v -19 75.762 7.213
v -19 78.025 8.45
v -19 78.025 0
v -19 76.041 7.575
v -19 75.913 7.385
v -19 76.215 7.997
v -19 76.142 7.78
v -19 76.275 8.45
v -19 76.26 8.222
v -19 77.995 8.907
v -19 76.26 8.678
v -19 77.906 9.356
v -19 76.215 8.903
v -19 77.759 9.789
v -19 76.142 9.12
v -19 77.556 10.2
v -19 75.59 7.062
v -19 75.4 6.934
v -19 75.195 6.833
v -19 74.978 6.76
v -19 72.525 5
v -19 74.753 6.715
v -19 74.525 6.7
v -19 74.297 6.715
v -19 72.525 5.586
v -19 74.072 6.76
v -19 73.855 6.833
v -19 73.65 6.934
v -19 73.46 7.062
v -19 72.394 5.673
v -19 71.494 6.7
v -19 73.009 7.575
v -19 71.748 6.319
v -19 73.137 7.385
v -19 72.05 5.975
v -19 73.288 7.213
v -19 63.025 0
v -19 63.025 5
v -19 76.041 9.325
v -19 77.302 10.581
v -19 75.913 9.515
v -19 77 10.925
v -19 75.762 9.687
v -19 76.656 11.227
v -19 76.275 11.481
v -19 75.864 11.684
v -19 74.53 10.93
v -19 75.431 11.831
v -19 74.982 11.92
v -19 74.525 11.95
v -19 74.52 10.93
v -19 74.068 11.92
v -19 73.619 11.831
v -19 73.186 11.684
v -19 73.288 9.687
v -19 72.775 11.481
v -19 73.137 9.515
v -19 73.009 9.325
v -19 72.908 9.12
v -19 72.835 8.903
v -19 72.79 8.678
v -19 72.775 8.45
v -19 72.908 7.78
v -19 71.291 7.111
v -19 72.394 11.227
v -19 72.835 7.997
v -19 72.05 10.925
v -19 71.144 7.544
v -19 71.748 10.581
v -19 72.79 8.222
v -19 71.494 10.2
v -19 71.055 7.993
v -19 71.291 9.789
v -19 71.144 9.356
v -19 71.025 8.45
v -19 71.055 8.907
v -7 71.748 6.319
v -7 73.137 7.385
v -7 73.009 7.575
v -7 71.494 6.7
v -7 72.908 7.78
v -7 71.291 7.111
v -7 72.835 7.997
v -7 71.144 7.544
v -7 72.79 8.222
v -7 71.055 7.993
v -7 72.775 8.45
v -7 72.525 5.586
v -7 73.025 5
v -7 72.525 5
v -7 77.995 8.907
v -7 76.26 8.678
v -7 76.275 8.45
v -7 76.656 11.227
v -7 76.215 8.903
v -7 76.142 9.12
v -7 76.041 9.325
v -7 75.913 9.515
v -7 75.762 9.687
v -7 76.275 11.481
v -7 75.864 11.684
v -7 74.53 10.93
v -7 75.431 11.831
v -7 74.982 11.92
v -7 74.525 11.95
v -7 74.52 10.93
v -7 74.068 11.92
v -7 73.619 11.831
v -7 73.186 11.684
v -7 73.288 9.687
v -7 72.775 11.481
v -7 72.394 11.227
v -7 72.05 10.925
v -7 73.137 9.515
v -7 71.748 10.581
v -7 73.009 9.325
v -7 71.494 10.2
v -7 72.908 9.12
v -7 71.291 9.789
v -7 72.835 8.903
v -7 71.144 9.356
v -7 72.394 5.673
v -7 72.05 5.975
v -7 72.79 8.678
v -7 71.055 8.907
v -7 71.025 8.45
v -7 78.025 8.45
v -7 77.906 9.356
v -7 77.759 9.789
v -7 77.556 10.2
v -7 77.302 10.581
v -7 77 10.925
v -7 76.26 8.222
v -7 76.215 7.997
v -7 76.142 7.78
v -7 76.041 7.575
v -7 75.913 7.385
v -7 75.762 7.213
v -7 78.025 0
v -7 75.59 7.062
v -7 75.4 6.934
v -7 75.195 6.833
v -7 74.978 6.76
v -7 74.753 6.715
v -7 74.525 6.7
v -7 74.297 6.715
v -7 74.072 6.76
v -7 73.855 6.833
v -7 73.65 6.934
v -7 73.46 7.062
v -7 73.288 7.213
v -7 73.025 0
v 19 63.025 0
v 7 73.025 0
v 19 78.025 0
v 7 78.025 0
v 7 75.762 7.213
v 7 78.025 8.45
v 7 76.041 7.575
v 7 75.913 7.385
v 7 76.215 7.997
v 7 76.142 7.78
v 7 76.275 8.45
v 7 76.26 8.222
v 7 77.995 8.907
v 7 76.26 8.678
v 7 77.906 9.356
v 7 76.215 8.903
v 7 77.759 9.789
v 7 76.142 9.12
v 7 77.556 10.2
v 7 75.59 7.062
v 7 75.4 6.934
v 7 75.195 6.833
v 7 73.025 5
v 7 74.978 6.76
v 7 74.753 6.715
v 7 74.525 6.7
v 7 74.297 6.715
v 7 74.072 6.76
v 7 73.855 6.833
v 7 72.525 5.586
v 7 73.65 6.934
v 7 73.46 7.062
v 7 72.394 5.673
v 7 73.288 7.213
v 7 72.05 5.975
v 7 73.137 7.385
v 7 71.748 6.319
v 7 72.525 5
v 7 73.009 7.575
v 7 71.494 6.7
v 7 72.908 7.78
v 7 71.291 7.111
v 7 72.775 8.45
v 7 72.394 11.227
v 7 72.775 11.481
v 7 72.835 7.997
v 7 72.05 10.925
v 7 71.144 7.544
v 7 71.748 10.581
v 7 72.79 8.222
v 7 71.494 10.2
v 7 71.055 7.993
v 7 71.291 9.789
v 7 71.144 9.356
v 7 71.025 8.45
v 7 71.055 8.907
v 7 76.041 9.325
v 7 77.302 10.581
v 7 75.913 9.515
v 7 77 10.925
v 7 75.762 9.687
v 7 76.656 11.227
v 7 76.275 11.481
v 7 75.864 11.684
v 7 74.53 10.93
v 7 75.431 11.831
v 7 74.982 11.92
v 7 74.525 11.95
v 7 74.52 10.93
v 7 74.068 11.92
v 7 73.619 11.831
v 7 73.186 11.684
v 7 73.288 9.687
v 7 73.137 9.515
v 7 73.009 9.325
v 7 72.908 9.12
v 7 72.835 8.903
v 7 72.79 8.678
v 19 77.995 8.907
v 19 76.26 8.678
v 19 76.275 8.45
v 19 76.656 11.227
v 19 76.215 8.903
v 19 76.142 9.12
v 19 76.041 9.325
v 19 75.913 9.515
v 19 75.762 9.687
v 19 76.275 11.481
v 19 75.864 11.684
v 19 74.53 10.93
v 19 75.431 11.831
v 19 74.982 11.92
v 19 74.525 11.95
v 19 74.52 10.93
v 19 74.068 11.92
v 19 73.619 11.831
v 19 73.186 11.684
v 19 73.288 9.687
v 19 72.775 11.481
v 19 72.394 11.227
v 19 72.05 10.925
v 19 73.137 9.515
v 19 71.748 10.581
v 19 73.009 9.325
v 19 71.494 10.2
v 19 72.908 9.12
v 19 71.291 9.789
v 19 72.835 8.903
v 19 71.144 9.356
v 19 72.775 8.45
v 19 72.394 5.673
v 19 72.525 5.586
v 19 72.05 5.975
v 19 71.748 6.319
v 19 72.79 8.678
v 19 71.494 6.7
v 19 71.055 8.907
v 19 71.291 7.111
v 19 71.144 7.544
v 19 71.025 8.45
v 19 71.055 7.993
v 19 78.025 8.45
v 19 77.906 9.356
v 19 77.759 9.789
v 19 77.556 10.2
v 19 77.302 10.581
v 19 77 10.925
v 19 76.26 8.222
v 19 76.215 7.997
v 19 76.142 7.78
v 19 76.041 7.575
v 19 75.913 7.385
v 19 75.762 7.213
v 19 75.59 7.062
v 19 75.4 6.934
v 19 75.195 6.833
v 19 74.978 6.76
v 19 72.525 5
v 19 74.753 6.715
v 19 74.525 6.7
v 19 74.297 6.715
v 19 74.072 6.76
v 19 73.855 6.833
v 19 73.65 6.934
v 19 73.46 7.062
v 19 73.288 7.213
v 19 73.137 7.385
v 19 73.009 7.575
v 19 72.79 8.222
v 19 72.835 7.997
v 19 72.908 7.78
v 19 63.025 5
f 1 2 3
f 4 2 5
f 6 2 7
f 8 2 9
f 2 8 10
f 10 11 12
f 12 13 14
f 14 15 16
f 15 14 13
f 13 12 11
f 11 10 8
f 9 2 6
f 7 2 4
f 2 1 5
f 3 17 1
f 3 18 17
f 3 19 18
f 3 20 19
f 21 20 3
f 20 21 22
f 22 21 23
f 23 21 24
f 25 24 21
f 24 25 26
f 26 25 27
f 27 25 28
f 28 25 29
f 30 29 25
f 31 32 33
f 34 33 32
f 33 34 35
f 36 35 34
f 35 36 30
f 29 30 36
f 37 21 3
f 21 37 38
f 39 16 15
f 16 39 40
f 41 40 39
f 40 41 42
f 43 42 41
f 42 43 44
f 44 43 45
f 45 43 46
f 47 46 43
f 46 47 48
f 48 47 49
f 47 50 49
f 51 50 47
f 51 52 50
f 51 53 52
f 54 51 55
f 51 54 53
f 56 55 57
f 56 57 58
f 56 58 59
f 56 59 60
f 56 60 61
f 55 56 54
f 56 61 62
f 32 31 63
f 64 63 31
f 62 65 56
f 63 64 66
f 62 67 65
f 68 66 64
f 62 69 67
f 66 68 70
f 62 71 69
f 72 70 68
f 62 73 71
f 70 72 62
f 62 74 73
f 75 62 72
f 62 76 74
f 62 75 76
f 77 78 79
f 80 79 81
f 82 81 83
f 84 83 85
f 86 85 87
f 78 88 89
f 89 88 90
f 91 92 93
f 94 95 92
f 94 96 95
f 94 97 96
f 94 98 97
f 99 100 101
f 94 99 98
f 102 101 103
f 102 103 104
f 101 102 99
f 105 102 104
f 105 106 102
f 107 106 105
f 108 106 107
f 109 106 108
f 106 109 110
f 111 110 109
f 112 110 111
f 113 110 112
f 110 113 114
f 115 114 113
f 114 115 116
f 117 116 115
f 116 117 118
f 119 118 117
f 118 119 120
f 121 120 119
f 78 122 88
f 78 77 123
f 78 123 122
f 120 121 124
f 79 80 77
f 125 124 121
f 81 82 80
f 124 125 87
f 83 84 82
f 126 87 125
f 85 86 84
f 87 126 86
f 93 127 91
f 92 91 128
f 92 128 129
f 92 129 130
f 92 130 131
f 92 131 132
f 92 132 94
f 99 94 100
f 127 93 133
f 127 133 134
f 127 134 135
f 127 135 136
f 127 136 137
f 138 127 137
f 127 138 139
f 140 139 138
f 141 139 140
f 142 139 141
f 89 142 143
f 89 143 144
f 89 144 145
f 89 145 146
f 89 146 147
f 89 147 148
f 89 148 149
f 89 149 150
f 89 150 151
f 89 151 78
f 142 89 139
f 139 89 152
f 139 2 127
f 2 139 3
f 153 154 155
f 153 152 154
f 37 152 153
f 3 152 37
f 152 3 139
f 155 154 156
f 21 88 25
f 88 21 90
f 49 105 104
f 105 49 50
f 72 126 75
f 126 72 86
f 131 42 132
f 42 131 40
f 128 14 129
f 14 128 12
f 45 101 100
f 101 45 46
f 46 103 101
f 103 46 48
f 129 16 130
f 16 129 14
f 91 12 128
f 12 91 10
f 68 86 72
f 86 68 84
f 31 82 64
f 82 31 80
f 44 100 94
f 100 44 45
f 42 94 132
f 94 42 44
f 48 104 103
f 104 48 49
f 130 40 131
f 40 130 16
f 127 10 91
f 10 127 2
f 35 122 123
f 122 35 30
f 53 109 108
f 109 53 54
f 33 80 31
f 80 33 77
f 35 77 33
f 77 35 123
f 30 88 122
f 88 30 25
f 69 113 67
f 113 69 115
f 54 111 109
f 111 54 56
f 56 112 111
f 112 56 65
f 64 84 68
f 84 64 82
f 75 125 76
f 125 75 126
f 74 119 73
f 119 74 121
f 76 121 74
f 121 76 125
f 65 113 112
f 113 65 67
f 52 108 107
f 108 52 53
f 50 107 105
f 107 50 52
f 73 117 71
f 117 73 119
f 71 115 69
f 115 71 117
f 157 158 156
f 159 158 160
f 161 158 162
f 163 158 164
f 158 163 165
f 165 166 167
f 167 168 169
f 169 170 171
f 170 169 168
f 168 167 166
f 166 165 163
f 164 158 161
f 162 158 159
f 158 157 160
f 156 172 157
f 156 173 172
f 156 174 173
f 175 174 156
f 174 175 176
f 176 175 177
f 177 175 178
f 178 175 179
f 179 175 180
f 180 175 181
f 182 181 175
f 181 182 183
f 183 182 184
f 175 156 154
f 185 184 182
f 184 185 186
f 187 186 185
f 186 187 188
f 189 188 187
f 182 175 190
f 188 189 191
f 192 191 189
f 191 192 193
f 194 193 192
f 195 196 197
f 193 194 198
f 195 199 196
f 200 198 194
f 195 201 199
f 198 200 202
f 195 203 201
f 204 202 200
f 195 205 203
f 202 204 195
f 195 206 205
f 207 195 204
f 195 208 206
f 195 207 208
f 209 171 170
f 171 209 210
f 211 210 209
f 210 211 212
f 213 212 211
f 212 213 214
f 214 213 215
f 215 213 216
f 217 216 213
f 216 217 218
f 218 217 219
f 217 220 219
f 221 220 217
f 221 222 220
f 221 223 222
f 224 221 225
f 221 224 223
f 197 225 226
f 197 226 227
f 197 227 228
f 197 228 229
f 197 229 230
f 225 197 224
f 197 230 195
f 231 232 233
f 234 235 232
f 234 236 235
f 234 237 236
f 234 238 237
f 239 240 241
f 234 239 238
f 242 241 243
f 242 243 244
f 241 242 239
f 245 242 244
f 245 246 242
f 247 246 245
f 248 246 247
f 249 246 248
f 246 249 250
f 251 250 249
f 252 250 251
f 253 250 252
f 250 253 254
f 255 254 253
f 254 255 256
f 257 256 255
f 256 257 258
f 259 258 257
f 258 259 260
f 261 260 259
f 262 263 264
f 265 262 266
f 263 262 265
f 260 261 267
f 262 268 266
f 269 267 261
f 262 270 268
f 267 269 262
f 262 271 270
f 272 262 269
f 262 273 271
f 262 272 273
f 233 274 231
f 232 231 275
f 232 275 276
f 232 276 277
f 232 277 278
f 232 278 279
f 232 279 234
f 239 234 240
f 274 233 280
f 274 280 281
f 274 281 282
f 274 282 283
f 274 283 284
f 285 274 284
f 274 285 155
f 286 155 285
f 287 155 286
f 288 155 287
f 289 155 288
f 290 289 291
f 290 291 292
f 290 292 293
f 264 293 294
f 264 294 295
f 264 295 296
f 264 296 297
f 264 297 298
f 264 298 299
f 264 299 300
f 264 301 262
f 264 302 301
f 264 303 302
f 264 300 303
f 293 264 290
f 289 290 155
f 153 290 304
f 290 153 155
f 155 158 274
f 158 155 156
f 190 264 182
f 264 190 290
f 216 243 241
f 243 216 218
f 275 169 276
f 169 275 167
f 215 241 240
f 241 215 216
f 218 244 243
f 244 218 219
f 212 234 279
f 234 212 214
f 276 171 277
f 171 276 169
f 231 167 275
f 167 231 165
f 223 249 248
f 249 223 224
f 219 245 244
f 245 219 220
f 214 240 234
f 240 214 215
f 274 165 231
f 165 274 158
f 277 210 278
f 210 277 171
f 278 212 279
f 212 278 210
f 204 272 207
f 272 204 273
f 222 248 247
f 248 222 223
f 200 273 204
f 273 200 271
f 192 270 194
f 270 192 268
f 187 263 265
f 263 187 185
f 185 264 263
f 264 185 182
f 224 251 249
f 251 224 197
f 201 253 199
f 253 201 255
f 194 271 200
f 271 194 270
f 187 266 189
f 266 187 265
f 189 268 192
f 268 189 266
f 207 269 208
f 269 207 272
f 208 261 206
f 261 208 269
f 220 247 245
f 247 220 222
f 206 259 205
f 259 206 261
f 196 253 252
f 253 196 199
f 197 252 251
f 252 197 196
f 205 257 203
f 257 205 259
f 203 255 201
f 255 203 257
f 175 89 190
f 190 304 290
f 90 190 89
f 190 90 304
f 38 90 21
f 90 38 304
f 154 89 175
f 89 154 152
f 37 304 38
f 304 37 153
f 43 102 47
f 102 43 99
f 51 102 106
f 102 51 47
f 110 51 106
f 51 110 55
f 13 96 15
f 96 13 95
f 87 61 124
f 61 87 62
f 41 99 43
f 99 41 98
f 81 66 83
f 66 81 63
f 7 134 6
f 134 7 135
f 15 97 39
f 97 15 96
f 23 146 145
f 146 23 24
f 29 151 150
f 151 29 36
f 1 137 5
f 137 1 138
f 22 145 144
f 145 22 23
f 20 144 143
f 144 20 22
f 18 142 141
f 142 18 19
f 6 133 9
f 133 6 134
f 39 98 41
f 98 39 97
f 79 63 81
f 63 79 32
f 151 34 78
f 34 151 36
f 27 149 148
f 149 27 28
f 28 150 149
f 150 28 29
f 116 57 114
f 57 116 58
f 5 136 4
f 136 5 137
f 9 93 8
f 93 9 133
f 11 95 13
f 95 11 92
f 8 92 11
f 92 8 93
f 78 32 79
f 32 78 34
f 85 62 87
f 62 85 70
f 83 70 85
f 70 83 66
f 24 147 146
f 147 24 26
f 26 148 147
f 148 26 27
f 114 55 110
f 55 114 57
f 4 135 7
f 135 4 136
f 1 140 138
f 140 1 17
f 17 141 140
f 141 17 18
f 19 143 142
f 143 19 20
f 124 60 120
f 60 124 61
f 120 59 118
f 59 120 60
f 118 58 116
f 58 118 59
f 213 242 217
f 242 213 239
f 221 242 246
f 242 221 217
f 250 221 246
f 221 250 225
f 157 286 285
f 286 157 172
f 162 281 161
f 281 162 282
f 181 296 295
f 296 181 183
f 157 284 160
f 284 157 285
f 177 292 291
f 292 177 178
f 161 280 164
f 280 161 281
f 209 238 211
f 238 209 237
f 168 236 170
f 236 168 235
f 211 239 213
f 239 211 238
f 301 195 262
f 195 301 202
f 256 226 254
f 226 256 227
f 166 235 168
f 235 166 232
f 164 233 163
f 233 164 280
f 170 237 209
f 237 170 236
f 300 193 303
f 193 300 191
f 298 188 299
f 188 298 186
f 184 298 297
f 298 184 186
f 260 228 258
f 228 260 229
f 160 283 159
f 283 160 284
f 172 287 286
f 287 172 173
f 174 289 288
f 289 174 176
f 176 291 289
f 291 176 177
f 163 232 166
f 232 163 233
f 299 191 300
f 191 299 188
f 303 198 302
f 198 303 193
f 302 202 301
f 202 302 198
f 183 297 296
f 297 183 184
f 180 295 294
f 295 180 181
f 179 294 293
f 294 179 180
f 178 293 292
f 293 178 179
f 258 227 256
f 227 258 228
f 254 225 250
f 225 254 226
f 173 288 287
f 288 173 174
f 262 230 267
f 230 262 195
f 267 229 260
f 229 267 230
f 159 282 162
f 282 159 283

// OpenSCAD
// Export wrapper for the hinge test sample, lower part.
use <stencil_jig.scad>;
hinge_test_base();
